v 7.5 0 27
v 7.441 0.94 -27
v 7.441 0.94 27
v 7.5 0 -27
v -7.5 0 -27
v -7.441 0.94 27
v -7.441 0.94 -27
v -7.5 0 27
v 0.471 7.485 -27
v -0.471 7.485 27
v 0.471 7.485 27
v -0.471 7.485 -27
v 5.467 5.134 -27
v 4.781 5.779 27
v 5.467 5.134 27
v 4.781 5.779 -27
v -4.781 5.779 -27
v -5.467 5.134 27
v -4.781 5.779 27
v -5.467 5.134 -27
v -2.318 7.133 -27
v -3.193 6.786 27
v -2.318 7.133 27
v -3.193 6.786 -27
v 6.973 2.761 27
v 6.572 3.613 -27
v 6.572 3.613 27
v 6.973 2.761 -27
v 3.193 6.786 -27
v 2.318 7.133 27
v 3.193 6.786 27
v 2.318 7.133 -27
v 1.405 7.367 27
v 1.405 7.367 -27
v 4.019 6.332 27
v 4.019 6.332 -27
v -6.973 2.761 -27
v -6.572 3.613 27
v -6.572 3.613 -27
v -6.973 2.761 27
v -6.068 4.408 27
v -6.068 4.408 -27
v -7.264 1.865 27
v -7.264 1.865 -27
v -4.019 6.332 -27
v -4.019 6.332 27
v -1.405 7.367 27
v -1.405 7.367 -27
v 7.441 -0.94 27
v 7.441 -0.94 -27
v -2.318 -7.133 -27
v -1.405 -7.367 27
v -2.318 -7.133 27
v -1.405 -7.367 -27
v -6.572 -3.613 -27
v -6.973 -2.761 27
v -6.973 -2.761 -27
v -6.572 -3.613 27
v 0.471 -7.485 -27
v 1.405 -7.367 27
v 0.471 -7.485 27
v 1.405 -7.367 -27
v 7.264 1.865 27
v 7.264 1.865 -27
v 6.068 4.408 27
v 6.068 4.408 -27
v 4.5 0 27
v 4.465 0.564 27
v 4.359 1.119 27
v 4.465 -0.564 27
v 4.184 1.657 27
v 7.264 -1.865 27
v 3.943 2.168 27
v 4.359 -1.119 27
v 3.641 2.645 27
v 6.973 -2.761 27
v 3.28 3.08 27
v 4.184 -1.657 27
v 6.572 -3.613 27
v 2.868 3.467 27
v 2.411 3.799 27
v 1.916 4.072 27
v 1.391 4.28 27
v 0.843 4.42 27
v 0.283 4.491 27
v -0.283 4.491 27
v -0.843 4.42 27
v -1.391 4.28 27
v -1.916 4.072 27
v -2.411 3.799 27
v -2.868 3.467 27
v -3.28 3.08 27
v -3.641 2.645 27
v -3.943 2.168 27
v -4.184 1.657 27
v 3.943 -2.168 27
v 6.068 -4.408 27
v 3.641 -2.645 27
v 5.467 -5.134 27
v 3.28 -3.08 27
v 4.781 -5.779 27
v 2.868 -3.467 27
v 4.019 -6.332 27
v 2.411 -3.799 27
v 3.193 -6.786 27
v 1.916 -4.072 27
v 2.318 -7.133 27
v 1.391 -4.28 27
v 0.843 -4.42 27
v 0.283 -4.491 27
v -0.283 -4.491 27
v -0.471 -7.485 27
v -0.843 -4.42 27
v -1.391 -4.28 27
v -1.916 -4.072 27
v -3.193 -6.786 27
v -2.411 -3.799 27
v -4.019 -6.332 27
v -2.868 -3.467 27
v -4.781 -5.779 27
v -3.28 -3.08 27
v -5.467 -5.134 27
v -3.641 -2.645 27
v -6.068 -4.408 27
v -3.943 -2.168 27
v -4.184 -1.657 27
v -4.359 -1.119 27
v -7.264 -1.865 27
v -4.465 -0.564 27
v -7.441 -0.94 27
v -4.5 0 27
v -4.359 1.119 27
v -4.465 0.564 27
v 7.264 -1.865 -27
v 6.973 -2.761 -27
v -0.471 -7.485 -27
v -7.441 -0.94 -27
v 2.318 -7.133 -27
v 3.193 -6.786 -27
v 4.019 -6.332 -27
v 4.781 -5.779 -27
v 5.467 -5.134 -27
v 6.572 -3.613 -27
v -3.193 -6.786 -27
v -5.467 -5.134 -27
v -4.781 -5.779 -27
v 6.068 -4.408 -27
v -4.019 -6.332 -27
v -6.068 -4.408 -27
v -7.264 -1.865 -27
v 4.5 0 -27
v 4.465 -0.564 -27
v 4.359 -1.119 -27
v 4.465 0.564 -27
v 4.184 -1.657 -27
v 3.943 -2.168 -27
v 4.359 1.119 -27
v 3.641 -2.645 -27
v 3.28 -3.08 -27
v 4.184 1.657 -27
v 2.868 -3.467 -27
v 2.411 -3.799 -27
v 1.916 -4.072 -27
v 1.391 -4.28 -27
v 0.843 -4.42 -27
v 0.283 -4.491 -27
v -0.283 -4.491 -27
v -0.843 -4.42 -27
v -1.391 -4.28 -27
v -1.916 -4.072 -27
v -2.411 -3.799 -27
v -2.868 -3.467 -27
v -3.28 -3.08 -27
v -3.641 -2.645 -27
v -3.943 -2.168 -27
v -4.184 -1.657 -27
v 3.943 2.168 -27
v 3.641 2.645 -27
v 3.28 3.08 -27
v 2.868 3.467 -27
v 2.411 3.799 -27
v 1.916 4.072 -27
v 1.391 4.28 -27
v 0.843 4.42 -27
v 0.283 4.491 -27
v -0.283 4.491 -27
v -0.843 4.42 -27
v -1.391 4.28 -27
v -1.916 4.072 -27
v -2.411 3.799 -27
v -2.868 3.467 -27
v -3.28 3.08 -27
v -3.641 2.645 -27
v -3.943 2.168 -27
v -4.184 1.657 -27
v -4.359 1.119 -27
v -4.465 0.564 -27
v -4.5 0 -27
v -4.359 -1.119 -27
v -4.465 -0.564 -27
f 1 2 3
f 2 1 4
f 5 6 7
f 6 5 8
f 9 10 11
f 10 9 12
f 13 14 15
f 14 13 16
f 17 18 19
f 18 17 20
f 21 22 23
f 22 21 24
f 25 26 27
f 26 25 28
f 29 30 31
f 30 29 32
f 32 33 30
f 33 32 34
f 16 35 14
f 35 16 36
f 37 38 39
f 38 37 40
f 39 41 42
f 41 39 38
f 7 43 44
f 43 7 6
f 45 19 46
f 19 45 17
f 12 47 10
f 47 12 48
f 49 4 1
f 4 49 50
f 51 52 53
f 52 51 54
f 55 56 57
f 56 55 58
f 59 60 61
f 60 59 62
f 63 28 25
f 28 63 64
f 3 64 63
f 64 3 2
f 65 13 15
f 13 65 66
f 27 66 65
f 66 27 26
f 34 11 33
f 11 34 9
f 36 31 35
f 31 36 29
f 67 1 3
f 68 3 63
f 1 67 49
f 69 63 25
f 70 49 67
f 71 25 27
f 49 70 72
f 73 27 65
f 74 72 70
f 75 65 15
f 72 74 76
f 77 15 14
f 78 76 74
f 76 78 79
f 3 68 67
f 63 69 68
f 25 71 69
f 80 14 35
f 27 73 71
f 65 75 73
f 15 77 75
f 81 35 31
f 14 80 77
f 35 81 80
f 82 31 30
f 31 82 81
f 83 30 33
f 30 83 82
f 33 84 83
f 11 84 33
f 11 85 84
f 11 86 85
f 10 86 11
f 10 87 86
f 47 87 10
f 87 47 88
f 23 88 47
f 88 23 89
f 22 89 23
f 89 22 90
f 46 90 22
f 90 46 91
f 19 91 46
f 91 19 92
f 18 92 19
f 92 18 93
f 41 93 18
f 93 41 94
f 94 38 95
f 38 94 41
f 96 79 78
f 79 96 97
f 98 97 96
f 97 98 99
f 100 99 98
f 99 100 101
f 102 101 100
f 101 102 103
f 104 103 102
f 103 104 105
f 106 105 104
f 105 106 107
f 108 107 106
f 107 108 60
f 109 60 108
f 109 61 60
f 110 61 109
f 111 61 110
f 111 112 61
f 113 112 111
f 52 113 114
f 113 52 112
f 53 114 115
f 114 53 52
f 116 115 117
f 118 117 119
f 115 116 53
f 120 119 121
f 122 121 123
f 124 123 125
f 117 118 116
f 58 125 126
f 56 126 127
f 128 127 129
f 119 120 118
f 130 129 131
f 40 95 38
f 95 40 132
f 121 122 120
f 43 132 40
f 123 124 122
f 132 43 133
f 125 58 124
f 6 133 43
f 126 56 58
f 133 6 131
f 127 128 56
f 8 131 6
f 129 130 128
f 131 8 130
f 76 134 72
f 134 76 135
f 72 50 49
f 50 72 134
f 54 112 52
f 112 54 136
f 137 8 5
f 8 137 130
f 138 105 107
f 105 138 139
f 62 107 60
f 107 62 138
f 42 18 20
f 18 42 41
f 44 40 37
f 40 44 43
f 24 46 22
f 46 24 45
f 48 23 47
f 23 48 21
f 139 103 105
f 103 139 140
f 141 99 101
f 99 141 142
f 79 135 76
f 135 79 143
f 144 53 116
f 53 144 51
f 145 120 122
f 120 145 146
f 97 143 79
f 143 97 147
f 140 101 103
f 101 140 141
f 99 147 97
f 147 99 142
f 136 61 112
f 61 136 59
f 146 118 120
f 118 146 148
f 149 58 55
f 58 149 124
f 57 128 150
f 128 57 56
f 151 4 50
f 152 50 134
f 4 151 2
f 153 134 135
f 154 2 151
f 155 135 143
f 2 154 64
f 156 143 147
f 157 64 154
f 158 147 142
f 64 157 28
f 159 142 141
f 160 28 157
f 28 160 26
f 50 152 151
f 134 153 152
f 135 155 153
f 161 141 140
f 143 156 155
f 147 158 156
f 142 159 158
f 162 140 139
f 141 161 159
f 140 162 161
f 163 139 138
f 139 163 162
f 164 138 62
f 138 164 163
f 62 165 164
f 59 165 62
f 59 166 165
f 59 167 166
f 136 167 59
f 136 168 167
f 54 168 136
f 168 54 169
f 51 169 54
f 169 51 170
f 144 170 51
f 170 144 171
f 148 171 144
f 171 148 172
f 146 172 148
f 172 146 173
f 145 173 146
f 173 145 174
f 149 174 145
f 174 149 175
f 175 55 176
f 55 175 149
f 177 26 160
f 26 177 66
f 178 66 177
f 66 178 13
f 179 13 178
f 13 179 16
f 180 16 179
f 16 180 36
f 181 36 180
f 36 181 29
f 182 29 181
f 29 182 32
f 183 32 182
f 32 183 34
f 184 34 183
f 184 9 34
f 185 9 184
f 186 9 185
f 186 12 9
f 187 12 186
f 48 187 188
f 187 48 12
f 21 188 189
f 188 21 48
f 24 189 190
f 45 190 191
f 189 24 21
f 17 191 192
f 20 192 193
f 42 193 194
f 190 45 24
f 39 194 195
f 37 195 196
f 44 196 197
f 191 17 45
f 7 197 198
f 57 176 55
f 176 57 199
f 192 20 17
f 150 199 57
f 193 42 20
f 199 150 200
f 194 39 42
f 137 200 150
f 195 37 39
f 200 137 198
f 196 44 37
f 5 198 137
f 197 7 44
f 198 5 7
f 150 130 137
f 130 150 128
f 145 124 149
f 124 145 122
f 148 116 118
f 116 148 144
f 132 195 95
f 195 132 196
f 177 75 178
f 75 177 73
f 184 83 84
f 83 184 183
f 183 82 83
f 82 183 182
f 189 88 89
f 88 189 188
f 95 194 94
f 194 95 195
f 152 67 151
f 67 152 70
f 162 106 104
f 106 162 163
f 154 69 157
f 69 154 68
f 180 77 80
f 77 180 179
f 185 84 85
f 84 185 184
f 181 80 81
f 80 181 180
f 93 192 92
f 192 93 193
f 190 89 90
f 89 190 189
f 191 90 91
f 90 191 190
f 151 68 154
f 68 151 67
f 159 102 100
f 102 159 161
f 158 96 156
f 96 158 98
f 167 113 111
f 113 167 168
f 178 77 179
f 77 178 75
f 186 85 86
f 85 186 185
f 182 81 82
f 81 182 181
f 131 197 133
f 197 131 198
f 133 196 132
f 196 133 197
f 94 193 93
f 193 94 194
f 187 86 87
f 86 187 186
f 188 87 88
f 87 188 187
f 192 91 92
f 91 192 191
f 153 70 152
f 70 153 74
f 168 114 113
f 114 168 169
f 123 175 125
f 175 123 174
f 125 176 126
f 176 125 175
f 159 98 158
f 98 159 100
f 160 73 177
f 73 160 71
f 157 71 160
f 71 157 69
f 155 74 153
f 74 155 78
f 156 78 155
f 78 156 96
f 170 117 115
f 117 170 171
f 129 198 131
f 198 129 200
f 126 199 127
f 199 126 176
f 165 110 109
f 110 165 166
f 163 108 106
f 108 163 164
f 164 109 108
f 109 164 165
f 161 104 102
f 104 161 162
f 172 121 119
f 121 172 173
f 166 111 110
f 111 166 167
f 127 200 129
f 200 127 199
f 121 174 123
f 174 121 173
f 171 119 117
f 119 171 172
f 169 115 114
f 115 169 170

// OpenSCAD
$fn = 50;


difference() {
	union() {
		translate(v = [0, 0, -27.0000000000]) {
			cylinder(h = 54, r = 7.5000000000);
		}
	}
	union() {
		translate(v = [0, 0, -100.0000000000]) {
			cylinder(h = 200, r = 4.5000000000);
		}
	}
}
